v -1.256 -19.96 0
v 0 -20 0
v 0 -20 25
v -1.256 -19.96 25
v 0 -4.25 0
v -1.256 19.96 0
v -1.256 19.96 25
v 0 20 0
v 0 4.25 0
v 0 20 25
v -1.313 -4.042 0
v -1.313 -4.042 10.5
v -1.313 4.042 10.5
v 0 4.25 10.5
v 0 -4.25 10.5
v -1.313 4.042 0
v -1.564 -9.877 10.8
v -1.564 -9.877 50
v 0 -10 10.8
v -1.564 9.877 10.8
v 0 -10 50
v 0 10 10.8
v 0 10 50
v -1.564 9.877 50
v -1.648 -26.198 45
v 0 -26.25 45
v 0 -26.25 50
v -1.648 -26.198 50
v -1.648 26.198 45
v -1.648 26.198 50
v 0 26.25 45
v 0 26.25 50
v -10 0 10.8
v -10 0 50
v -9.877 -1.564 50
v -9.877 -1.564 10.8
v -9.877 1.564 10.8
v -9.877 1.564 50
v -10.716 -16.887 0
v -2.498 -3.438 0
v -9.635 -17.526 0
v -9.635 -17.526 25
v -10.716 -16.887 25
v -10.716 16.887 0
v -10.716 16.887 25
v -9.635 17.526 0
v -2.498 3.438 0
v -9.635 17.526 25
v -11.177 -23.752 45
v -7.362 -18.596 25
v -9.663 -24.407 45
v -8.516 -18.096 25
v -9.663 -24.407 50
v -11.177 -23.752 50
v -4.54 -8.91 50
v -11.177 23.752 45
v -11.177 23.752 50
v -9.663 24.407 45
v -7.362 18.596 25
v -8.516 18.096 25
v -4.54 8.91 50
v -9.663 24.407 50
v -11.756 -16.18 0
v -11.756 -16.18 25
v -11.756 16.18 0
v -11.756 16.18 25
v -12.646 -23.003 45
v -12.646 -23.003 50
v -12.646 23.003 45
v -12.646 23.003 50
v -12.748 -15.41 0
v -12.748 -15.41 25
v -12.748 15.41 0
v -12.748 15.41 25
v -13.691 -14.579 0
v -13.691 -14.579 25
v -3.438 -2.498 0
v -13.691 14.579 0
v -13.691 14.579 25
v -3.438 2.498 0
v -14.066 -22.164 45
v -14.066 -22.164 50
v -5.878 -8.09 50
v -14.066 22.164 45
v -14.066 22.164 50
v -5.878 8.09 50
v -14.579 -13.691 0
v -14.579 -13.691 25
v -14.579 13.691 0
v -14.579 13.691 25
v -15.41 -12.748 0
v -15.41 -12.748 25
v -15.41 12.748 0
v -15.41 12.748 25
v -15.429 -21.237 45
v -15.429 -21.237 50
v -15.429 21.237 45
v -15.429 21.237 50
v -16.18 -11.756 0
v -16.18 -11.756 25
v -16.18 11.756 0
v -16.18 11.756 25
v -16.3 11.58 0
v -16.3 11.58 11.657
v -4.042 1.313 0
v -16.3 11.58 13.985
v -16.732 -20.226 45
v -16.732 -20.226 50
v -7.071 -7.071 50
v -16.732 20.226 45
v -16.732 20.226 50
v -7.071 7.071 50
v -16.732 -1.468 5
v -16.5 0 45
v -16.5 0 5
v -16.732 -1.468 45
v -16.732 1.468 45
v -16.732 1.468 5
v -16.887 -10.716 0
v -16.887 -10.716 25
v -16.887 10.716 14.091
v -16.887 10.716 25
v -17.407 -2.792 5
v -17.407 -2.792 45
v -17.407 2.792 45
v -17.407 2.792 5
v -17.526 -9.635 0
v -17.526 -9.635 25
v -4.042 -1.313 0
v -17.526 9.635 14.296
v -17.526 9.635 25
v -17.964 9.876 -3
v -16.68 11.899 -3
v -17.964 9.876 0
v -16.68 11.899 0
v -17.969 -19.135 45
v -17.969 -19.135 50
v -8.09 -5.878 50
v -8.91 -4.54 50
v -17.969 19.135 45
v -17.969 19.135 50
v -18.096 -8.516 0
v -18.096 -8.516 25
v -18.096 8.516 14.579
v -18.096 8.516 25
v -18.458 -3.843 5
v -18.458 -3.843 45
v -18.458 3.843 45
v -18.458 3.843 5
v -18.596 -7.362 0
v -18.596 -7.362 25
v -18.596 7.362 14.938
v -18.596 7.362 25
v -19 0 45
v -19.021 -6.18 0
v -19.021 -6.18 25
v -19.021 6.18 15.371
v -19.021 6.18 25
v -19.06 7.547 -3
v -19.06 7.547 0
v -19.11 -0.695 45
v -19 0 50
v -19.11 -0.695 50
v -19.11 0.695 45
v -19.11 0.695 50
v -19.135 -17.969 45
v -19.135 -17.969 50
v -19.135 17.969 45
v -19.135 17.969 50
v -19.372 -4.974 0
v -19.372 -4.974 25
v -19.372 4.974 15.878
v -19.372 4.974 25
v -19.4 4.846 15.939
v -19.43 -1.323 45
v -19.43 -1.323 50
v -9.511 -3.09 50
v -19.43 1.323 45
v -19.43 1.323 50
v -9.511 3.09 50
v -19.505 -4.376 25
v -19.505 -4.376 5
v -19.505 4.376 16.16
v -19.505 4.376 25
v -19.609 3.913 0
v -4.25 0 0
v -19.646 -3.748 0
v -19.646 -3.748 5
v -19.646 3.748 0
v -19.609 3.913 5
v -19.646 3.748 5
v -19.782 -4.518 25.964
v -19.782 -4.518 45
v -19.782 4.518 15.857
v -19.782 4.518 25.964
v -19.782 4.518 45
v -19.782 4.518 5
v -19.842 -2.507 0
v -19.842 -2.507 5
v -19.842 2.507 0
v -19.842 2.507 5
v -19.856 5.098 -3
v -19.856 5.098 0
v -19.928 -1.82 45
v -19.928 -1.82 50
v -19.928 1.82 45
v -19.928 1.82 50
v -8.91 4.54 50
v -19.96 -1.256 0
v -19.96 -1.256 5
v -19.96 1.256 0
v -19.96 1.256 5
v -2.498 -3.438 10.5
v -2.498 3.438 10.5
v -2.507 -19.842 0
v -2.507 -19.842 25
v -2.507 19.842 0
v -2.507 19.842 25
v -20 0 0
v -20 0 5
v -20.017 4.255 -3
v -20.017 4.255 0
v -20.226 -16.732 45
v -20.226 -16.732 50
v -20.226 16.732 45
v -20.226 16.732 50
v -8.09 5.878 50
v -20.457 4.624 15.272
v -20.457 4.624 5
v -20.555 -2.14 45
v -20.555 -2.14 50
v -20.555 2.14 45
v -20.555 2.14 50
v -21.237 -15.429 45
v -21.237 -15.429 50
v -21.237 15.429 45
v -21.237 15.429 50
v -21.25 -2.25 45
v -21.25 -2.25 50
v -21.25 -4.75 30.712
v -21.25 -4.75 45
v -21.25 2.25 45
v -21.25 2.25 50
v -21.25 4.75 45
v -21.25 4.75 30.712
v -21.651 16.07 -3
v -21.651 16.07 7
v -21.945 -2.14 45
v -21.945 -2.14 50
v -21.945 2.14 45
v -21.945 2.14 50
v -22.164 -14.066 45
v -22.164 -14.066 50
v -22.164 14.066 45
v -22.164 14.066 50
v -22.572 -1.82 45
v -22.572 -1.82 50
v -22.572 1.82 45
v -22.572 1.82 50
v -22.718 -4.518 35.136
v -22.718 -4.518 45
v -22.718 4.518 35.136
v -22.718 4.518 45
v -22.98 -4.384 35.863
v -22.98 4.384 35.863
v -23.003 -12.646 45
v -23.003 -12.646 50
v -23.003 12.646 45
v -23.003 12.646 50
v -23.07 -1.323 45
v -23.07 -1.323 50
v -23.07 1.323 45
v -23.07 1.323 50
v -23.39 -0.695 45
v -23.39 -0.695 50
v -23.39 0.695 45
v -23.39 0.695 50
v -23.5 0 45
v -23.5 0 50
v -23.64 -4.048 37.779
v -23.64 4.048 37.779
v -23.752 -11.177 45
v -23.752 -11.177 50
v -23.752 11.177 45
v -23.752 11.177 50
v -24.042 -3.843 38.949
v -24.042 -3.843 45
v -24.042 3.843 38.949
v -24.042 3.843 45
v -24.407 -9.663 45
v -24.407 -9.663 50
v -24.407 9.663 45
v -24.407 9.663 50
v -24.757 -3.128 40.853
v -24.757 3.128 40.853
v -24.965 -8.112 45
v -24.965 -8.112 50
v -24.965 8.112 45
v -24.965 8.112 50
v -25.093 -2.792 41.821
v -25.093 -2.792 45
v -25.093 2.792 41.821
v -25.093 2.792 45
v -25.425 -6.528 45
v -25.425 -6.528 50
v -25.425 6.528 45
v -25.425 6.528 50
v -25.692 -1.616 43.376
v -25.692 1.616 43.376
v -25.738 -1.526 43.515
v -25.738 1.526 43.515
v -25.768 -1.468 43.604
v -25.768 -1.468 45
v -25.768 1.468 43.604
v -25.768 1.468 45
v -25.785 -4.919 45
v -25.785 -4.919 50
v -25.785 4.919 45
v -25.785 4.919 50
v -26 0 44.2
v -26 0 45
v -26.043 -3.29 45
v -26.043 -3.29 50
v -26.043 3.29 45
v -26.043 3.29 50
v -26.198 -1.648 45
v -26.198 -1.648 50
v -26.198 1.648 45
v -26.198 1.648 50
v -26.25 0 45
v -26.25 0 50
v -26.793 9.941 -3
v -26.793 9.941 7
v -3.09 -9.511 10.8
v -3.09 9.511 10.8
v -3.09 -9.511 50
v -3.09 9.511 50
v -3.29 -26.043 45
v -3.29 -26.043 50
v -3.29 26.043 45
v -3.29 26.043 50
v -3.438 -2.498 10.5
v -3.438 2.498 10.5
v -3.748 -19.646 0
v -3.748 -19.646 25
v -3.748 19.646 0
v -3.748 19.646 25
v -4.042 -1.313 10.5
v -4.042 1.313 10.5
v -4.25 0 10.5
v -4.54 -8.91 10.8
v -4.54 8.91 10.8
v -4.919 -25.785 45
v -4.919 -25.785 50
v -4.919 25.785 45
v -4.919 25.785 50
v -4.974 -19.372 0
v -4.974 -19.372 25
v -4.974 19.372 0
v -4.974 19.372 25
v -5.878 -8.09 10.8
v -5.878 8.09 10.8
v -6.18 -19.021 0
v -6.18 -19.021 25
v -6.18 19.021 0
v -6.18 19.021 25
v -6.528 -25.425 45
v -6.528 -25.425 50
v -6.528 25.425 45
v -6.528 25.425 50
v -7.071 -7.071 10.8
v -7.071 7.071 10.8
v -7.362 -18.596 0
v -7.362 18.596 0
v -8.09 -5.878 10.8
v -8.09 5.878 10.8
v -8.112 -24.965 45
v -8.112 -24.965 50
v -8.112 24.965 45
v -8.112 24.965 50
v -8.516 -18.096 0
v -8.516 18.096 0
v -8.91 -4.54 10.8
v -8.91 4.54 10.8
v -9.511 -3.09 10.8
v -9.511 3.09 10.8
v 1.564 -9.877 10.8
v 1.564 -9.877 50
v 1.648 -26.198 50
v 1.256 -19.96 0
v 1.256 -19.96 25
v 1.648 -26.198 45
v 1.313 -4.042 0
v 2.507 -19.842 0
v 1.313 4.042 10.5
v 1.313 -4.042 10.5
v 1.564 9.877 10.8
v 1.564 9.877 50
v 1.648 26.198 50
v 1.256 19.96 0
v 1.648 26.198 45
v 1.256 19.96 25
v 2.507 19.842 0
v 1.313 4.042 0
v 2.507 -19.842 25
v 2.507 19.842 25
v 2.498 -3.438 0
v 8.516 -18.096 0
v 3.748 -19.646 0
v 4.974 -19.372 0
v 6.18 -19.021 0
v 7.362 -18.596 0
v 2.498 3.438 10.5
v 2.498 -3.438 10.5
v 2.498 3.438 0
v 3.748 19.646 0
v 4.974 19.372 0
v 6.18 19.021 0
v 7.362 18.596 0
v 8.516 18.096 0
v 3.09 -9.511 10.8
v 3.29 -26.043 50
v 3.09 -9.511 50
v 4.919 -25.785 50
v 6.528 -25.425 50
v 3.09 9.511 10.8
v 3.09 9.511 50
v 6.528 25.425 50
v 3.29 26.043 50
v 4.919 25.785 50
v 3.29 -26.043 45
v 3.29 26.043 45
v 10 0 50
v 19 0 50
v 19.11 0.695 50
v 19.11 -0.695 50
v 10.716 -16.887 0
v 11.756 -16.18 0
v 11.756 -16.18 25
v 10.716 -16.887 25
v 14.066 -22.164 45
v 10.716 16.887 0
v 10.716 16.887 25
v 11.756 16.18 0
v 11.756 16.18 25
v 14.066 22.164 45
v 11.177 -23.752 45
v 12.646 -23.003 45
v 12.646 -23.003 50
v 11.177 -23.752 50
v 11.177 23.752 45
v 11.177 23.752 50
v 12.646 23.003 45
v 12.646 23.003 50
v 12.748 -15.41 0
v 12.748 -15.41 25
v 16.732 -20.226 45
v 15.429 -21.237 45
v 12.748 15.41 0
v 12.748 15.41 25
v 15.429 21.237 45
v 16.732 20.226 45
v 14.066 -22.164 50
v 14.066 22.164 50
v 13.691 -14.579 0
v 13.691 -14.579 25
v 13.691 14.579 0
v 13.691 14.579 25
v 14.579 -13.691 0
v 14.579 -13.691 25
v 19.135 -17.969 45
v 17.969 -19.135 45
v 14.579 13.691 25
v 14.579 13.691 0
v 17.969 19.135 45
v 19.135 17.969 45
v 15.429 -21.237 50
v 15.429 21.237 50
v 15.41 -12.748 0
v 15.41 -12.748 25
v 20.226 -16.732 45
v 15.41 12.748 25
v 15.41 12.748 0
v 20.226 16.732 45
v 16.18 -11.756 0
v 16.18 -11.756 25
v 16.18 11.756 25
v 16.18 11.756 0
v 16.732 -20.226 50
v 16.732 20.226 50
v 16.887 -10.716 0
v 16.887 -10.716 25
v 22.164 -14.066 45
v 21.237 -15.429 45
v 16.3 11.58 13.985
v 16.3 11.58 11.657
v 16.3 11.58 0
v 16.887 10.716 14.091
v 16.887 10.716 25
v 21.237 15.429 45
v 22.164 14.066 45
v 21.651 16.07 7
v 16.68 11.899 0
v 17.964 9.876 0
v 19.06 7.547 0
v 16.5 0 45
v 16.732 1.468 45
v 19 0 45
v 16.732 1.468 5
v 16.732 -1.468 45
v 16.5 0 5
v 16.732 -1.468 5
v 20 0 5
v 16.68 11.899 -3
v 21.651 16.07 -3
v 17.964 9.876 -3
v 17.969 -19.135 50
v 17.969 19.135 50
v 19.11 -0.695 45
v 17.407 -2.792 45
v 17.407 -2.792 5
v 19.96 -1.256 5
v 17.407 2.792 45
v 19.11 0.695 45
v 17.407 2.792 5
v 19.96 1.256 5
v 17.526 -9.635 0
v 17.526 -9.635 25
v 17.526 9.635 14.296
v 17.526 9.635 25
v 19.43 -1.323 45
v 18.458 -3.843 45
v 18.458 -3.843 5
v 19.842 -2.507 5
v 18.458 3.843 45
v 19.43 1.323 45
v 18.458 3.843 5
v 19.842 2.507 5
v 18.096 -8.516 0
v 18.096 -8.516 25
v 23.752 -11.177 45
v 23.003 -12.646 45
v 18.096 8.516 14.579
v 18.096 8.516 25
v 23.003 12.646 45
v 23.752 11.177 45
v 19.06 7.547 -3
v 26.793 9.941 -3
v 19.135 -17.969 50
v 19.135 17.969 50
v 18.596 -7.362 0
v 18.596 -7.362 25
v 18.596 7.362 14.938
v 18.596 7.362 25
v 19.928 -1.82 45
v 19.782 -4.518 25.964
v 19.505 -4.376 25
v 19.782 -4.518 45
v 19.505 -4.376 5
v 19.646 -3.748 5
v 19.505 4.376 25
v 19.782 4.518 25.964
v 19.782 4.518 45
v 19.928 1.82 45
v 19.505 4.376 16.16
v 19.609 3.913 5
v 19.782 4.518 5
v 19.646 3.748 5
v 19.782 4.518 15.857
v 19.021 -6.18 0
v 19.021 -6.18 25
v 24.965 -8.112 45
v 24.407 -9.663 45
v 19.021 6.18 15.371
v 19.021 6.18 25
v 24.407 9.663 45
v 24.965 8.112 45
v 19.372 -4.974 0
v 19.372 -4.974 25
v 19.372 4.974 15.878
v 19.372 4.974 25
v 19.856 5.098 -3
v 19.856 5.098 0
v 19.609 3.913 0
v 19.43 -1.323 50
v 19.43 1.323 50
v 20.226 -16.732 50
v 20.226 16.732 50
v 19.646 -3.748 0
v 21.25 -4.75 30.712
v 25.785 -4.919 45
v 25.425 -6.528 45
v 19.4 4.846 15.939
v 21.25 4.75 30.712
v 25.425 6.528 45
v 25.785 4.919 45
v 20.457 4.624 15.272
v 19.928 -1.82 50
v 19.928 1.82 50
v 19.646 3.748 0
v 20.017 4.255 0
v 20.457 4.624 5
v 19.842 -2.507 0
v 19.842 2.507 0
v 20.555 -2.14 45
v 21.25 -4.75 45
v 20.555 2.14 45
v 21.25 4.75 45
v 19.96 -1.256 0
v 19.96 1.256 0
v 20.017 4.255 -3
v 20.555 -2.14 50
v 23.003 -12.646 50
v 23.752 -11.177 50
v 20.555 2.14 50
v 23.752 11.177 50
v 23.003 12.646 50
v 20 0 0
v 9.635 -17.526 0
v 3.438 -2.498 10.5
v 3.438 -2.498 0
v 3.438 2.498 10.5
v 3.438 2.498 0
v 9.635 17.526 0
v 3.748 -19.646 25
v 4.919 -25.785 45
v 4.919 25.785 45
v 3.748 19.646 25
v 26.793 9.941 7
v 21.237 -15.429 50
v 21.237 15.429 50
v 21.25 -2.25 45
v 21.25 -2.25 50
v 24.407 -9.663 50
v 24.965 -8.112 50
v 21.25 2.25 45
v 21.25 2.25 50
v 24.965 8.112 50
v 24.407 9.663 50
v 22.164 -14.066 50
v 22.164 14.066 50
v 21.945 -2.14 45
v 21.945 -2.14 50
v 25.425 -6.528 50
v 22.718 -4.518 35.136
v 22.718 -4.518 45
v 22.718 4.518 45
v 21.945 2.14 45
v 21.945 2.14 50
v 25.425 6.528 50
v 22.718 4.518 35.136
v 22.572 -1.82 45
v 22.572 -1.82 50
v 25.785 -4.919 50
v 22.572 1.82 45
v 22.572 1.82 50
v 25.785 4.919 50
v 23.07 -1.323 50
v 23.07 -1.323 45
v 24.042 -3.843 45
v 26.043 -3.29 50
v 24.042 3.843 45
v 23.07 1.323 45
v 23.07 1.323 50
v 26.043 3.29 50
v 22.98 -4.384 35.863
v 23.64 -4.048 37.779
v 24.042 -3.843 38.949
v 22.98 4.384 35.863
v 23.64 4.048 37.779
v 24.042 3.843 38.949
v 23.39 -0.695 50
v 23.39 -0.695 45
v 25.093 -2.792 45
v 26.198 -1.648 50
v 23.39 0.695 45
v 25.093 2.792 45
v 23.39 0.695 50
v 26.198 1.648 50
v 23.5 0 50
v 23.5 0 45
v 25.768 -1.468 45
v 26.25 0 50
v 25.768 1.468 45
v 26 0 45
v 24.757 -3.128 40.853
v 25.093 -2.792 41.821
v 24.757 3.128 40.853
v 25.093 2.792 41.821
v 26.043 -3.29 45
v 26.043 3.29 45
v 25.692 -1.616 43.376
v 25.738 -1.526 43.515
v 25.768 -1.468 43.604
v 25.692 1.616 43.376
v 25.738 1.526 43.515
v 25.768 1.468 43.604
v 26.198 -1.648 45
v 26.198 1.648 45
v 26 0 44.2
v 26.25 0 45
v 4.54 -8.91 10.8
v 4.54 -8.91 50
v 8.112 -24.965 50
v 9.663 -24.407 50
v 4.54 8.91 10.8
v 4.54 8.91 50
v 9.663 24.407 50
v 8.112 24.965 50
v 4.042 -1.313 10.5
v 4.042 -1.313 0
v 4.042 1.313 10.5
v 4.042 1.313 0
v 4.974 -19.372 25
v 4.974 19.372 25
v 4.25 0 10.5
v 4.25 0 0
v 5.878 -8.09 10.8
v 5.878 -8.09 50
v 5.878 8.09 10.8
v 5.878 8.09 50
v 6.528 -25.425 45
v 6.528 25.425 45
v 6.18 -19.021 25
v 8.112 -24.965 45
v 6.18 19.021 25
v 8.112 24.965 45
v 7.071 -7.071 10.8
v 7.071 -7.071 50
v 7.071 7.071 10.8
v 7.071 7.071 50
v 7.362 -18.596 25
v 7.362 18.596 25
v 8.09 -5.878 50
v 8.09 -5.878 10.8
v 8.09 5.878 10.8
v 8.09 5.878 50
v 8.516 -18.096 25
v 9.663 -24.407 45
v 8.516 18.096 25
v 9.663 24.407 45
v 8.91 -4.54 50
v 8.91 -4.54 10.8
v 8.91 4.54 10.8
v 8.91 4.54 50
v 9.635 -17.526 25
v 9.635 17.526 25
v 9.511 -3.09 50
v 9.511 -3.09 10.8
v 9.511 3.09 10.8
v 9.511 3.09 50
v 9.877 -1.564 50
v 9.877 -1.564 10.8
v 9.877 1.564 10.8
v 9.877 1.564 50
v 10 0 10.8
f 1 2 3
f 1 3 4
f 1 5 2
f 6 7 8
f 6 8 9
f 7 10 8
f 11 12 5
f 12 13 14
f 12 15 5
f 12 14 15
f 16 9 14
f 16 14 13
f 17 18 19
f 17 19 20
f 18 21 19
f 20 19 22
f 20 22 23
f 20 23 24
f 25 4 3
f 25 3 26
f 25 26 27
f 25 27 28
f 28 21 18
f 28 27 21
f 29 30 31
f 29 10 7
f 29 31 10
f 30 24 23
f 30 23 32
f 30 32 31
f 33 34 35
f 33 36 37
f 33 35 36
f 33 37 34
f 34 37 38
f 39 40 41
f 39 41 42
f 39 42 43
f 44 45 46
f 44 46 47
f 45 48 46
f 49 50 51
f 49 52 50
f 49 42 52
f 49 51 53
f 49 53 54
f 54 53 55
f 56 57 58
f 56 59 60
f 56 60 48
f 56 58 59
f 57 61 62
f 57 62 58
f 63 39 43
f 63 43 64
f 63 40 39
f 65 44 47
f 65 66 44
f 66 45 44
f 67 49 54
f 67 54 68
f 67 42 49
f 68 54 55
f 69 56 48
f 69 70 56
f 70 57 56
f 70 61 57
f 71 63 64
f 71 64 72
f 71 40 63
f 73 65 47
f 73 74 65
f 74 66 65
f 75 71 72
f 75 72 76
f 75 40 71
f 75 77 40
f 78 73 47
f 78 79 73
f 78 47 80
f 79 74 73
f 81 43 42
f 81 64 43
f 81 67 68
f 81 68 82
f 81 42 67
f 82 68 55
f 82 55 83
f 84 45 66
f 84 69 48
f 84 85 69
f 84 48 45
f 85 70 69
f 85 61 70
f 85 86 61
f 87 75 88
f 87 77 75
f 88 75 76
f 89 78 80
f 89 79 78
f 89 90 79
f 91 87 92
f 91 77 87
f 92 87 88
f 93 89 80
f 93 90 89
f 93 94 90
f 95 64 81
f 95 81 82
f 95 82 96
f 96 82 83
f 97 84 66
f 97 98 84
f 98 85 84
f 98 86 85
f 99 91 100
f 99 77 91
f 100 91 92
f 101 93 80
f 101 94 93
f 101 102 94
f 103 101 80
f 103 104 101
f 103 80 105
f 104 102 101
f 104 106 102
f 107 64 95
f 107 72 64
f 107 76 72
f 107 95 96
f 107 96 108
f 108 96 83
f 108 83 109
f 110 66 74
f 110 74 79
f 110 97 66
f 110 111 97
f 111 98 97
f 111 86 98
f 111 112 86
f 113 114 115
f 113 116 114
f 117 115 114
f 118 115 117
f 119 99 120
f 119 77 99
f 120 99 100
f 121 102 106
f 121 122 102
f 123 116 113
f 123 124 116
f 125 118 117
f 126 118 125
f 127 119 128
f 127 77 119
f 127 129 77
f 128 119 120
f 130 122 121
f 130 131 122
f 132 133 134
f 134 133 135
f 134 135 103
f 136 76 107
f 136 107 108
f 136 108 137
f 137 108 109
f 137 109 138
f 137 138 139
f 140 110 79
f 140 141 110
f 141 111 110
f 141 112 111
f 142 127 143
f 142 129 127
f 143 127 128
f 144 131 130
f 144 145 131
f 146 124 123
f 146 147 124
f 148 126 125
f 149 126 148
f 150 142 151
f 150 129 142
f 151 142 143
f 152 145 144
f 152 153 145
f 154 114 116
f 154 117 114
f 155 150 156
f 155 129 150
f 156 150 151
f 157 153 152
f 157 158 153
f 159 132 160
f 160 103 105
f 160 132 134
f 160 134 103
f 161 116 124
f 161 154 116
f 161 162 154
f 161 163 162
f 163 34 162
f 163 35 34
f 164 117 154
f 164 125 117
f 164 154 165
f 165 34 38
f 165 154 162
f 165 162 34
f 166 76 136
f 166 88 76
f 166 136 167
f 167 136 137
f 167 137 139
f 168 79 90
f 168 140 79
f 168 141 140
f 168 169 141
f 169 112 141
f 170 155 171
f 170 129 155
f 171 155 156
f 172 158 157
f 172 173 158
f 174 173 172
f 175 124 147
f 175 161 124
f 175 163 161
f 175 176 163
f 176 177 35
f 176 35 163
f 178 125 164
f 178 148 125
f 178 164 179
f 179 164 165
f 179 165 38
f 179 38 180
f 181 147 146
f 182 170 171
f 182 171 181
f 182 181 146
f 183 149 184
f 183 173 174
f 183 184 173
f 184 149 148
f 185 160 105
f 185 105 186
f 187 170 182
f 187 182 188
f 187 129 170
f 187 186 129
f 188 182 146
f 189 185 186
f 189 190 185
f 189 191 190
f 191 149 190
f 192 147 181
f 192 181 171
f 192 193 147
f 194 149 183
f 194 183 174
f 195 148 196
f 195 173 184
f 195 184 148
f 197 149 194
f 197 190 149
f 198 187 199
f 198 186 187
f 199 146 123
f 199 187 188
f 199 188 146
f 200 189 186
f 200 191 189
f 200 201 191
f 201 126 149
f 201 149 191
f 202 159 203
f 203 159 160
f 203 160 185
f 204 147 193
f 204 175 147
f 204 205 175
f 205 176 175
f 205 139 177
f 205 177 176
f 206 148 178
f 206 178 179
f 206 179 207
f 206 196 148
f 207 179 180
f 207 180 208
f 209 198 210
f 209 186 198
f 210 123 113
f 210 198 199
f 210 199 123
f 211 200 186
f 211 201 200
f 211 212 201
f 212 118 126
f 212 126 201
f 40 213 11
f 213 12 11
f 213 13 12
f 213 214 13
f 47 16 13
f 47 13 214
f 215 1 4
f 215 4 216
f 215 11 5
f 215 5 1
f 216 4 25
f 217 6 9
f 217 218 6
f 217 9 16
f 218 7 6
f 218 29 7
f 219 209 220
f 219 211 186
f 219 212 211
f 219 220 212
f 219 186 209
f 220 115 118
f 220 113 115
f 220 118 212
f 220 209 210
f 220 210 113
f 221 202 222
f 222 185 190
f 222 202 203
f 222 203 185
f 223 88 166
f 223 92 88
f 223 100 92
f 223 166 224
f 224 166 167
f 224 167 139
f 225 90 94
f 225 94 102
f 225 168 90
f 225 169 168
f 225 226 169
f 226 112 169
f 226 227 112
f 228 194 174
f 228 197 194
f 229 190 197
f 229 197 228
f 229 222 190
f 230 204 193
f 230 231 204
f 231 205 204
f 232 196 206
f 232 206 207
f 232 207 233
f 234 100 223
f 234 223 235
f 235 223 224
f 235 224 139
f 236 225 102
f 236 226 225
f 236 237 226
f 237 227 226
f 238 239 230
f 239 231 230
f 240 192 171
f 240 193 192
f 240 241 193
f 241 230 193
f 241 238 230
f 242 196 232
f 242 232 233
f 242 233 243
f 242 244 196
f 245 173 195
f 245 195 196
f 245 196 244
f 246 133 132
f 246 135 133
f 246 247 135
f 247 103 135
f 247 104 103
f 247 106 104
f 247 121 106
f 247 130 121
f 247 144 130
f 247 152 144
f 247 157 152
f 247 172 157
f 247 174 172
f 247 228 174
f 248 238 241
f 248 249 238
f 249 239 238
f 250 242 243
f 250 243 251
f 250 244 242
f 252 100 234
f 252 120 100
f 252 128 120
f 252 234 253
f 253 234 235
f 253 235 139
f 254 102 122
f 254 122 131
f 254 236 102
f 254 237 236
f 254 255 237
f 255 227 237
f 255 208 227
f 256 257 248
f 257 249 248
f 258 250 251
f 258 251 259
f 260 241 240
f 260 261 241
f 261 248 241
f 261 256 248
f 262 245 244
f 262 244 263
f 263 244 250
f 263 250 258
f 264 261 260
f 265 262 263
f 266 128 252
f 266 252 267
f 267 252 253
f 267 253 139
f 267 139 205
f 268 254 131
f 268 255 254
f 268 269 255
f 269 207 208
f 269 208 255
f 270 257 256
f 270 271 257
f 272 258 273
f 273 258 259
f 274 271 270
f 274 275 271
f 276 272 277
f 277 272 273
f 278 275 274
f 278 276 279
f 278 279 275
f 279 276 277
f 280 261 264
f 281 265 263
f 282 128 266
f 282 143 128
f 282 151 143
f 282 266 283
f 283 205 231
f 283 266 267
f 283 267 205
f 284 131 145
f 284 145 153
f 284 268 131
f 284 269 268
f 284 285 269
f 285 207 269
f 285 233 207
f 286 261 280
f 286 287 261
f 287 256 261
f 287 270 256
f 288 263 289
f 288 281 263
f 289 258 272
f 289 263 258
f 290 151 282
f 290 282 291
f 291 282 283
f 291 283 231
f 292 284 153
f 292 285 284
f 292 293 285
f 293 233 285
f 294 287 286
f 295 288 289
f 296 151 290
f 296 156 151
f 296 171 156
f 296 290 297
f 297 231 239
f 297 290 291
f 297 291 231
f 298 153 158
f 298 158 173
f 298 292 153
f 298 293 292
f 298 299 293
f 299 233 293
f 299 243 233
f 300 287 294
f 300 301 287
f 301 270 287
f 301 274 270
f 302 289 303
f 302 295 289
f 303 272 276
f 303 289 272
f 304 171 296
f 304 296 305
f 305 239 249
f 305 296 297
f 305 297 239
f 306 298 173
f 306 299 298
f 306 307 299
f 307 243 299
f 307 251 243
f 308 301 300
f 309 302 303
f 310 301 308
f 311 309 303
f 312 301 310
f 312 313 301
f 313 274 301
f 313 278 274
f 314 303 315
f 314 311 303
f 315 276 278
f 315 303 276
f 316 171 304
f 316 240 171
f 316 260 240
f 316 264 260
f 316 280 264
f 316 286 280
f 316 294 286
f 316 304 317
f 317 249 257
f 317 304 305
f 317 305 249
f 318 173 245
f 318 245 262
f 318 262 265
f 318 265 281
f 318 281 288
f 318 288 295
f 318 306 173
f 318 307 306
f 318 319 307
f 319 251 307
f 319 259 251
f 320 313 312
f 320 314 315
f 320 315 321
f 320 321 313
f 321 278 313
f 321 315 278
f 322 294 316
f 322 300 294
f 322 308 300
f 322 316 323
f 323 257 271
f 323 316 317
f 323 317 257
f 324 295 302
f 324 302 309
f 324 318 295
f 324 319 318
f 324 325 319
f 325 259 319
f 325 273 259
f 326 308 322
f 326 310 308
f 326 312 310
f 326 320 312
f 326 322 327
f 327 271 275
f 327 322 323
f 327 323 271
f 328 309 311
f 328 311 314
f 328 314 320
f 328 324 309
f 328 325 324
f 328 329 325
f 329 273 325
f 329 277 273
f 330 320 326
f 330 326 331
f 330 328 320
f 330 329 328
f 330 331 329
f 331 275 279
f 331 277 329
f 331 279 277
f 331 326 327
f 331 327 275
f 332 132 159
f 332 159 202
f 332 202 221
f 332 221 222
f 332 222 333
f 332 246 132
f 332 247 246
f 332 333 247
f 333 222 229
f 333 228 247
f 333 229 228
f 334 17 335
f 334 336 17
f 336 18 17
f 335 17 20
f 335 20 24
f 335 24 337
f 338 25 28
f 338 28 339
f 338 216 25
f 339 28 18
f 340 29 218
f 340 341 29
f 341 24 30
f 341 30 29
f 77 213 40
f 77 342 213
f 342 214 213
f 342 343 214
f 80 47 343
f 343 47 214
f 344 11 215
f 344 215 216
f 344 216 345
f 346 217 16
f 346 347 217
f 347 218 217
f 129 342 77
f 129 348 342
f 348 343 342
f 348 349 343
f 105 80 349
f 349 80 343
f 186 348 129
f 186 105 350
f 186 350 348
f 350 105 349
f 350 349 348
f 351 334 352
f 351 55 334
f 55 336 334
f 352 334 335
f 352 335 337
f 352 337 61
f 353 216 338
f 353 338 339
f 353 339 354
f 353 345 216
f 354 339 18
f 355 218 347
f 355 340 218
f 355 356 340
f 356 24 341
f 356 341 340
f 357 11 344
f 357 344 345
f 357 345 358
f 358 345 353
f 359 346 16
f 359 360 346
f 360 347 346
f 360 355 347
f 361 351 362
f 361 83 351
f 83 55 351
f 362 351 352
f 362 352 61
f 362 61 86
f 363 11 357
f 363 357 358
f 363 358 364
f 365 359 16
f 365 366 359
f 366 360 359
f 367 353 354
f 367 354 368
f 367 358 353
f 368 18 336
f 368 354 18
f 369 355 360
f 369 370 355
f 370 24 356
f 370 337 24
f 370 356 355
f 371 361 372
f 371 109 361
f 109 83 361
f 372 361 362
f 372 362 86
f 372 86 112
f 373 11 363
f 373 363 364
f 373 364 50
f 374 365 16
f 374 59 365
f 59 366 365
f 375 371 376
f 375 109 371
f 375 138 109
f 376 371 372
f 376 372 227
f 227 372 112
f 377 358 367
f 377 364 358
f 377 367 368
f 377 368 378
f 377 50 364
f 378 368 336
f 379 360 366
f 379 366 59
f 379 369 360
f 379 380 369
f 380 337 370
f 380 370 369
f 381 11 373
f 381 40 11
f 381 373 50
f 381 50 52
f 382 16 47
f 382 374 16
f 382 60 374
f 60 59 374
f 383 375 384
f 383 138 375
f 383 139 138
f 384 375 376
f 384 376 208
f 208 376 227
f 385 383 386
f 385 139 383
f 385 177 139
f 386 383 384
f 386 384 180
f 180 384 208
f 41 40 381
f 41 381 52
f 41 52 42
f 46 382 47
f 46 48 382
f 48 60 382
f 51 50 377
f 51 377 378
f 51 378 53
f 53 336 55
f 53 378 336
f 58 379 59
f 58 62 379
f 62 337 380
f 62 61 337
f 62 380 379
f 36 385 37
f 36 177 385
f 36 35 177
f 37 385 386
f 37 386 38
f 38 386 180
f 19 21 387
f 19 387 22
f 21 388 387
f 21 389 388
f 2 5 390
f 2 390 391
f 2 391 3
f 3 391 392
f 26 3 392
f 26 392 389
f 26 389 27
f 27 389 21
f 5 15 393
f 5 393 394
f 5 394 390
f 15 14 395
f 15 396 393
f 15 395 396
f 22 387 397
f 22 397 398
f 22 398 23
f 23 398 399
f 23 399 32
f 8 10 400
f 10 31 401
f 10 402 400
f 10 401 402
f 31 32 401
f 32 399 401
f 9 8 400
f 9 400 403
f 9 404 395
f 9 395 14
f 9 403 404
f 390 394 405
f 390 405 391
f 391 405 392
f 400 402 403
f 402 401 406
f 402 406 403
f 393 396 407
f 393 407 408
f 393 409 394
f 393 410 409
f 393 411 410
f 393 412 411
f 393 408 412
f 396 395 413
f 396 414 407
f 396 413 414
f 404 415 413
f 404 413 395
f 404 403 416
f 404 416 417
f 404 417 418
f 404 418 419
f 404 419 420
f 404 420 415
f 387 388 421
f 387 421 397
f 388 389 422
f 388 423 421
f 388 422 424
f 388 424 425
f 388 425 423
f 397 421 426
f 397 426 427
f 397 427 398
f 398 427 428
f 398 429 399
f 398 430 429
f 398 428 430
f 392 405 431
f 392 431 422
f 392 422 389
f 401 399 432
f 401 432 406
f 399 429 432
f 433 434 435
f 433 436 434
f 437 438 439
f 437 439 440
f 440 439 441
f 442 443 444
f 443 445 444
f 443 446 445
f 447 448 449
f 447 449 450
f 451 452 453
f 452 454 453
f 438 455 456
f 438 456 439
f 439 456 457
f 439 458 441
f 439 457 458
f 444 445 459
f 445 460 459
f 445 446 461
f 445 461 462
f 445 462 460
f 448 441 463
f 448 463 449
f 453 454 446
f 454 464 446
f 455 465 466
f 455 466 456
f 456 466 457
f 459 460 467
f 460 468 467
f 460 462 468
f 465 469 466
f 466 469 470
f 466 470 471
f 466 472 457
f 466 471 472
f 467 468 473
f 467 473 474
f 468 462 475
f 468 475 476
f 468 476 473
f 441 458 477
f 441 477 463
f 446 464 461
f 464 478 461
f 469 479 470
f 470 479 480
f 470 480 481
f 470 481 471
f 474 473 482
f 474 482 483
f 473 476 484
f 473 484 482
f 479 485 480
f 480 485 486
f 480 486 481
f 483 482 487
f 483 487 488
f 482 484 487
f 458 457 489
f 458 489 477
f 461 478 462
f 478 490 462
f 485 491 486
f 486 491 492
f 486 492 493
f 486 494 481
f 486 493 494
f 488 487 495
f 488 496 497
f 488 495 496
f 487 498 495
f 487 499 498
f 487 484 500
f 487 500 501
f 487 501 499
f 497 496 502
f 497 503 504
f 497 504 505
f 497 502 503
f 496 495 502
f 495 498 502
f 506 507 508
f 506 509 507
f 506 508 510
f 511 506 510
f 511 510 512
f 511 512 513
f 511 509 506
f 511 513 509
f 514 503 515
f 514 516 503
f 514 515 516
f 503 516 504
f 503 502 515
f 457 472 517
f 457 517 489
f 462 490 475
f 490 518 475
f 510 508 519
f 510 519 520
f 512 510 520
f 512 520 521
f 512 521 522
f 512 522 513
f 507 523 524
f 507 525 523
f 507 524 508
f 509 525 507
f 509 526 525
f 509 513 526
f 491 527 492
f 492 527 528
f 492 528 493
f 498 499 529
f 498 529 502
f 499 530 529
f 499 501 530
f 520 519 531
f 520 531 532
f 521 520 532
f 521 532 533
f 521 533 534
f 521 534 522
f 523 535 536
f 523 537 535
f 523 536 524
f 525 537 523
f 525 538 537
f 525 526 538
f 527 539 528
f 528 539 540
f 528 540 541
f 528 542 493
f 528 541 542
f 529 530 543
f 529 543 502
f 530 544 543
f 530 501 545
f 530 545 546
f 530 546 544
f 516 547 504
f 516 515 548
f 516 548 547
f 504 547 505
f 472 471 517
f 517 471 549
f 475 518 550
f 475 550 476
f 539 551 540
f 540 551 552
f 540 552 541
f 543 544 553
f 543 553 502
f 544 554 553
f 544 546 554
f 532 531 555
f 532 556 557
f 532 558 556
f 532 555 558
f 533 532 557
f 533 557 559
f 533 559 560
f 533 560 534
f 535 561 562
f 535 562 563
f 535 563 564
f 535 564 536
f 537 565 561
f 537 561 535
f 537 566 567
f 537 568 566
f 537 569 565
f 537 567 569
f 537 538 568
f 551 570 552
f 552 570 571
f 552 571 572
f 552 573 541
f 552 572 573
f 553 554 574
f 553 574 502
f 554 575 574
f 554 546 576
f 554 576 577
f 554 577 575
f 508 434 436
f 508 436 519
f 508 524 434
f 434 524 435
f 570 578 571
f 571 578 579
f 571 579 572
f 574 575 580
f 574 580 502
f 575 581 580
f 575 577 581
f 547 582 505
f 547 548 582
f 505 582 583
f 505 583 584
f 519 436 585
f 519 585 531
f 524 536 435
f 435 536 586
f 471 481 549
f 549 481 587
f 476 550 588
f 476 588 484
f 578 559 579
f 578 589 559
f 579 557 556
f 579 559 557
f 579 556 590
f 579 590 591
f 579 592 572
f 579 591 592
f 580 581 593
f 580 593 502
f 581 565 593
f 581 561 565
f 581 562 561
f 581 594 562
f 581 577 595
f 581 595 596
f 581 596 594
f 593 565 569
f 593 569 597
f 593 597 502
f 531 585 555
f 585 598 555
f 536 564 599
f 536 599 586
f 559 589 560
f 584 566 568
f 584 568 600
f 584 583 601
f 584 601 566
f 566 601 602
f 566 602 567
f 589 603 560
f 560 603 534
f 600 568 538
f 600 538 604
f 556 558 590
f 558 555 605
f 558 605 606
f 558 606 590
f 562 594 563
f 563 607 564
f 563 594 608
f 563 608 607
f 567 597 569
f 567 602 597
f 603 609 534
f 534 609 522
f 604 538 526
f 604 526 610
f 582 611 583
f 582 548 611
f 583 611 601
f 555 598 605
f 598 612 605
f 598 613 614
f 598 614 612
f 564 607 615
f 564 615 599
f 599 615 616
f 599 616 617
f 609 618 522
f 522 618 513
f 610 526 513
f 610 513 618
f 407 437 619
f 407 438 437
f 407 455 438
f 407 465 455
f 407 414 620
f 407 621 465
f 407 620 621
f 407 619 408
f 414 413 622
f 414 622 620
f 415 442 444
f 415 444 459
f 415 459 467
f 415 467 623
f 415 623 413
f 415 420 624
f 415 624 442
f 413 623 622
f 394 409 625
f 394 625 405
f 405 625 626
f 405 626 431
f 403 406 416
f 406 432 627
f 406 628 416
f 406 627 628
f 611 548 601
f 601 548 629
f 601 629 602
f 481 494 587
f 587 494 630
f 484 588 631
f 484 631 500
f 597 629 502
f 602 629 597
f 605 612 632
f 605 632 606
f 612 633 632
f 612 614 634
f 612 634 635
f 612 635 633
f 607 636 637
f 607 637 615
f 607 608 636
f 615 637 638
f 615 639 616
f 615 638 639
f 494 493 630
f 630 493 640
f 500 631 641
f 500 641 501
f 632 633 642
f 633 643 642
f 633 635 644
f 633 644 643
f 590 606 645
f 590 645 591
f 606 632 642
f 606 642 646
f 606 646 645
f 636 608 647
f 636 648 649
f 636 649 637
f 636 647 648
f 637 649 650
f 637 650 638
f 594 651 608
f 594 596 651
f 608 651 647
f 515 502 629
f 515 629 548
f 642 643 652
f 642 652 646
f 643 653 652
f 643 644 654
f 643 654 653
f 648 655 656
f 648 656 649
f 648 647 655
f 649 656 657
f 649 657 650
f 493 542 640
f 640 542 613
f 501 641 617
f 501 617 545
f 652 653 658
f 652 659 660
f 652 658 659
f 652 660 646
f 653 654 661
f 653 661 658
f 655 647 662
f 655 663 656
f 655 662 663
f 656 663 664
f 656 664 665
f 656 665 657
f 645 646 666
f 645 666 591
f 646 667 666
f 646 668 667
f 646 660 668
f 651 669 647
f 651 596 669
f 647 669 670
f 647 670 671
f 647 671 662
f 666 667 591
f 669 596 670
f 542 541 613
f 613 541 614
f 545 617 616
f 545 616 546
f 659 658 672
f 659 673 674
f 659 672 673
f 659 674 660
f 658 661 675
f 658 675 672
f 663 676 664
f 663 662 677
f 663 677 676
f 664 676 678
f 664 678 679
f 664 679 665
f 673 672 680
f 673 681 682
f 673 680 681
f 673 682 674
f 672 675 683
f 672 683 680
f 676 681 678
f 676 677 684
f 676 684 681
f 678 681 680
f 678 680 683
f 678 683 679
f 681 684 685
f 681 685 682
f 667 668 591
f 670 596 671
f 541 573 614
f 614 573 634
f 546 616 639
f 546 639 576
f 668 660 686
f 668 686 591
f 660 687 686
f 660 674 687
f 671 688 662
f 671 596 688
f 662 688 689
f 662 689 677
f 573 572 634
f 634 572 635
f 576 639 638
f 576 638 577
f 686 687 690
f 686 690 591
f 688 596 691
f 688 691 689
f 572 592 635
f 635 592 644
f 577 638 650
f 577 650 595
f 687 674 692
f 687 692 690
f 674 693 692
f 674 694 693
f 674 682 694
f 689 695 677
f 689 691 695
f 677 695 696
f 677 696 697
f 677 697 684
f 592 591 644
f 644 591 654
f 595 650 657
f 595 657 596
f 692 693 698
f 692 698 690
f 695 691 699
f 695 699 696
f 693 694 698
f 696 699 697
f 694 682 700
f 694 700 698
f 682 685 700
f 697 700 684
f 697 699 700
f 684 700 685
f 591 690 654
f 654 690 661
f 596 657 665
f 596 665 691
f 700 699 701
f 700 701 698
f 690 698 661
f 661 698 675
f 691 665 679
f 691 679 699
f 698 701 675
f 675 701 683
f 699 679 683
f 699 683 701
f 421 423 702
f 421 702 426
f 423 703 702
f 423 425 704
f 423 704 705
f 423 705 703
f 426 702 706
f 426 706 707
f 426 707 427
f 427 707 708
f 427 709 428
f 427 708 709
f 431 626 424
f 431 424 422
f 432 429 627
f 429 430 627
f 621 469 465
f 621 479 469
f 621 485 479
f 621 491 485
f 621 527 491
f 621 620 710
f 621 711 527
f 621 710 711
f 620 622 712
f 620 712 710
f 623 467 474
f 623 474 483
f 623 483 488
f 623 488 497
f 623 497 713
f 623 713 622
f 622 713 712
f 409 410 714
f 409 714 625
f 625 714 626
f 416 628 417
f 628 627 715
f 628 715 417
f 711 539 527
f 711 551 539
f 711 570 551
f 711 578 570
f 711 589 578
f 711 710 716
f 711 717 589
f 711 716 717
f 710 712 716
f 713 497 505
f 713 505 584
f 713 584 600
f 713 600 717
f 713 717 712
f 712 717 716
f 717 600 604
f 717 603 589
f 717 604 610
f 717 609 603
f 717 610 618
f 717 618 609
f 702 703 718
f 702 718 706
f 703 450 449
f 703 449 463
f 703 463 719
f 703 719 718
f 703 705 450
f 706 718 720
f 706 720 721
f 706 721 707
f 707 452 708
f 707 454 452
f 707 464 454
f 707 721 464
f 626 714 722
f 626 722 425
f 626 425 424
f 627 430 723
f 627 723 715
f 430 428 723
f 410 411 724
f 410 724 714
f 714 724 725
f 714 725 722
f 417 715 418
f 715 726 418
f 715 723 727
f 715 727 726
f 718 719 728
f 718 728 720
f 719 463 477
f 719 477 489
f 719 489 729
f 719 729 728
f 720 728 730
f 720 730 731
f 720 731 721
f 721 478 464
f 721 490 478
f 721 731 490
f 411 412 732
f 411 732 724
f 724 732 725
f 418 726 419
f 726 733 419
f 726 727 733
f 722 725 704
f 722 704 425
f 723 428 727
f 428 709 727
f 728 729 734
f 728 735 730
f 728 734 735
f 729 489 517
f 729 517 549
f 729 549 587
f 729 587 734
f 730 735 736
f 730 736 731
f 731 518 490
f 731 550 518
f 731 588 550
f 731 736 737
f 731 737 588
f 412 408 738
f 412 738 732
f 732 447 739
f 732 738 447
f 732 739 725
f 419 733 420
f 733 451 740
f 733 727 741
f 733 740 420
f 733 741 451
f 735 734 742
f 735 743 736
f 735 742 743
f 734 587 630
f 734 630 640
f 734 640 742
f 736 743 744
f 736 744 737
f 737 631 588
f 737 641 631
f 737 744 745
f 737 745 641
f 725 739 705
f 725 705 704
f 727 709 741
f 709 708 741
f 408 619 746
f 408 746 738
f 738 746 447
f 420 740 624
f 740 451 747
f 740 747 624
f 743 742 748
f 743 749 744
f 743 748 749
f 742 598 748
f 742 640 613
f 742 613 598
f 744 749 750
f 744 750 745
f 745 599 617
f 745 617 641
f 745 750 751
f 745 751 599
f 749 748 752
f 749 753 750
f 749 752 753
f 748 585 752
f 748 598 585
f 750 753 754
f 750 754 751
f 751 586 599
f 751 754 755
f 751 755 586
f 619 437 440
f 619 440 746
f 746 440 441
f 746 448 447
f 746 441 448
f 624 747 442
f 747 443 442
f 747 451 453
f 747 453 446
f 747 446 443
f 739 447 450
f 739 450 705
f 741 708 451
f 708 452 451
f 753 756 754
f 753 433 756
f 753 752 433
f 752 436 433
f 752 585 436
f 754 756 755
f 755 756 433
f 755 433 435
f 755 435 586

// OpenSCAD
//========== SPOJENÍ PODVOZKU A MOTOROVÉHO DÍLU ==========//

include <../parameters.scad>

joint_diameter = 40;
screw_length = 10.8;
height = 50;
washer_diameter = 20;
screw_distance = 42.5;
stops_overhang = 3;
layer_height = 0.2;

module 888_2026() {
    difference() {
        union() {
            cylinder(d=joint_diameter, h=height, $fn=100);

            hull() {
                translate([0, 0, height/2])
                    cylinder(d=joint_diameter, h=height/2, $fn=100);

                translate([0, 0, height-5])
                    cylinder(d=screw_distance+10, h=5, $fn=100);
            }

            //zarážka
            hull() {
                translate([stop_width/2, 0, -stops_overhang])
                    rotate([0, 0, max_angle_of_ratation/-2])
                        translate([0, joint_diameter/2-10, 0])
                            cube([8, stop_size+10, 10]);

                translate([stop_width/2, 0, -stops_overhang+10])
                    rotate([0, 0, max_angle_of_ratation/-2])
                        translate([0, joint_diameter/2-10, 0])
                            cube([8, stop_size, 10]);
            }
            //zarážka
            hull() {
                translate([stop_width/-2, 0, -stops_overhang])
                    rotate([0, 0, max_angle_of_ratation/2])
                        translate([-8, joint_diameter/2-10, 0])
                            cube([8, stop_size+10, 10]);

                translate([stop_width/-2, 0, -stops_overhang+10])
                    rotate([0, 0, max_angle_of_ratation/2])
                        translate([-8, joint_diameter/2-10, 0])
                            cube([8, stop_size, 10]);
            }
        }
        translate([0, 0, -6])
            cylinder(d=joint_diameter+1, h=6, $fn=50);

        //šroub uchycení podvozku
        translate([0, 0, -0.1])
            cylinder(d=M8_screw_diameter, h=screw_length-layer_height, $fn=20);
        translate([0, 0, screw_length])
            cylinder(d=washer_diameter, h=100, $fn=40);

        //šrouby pro připevnění k motorovému dílu
        translate([screw_distance/2, 0, 5])
            cylinder(d=M4_screw_diameter, h=100, $fn=20);

        translate([screw_distance/-2, 0, 5])
            cylinder(d=M4_screw_diameter, h=100, $fn=20);

        translate([screw_distance/2, 0, 5])
            cylinder(d=M4_screw_diameter+5, h=height-10, $fn=20);

        translate([screw_distance/-2, 0, 5])
            cylinder(d=M4_screw_diameter+5, h=height-10, $fn=20);
    }
}

888_2026();
